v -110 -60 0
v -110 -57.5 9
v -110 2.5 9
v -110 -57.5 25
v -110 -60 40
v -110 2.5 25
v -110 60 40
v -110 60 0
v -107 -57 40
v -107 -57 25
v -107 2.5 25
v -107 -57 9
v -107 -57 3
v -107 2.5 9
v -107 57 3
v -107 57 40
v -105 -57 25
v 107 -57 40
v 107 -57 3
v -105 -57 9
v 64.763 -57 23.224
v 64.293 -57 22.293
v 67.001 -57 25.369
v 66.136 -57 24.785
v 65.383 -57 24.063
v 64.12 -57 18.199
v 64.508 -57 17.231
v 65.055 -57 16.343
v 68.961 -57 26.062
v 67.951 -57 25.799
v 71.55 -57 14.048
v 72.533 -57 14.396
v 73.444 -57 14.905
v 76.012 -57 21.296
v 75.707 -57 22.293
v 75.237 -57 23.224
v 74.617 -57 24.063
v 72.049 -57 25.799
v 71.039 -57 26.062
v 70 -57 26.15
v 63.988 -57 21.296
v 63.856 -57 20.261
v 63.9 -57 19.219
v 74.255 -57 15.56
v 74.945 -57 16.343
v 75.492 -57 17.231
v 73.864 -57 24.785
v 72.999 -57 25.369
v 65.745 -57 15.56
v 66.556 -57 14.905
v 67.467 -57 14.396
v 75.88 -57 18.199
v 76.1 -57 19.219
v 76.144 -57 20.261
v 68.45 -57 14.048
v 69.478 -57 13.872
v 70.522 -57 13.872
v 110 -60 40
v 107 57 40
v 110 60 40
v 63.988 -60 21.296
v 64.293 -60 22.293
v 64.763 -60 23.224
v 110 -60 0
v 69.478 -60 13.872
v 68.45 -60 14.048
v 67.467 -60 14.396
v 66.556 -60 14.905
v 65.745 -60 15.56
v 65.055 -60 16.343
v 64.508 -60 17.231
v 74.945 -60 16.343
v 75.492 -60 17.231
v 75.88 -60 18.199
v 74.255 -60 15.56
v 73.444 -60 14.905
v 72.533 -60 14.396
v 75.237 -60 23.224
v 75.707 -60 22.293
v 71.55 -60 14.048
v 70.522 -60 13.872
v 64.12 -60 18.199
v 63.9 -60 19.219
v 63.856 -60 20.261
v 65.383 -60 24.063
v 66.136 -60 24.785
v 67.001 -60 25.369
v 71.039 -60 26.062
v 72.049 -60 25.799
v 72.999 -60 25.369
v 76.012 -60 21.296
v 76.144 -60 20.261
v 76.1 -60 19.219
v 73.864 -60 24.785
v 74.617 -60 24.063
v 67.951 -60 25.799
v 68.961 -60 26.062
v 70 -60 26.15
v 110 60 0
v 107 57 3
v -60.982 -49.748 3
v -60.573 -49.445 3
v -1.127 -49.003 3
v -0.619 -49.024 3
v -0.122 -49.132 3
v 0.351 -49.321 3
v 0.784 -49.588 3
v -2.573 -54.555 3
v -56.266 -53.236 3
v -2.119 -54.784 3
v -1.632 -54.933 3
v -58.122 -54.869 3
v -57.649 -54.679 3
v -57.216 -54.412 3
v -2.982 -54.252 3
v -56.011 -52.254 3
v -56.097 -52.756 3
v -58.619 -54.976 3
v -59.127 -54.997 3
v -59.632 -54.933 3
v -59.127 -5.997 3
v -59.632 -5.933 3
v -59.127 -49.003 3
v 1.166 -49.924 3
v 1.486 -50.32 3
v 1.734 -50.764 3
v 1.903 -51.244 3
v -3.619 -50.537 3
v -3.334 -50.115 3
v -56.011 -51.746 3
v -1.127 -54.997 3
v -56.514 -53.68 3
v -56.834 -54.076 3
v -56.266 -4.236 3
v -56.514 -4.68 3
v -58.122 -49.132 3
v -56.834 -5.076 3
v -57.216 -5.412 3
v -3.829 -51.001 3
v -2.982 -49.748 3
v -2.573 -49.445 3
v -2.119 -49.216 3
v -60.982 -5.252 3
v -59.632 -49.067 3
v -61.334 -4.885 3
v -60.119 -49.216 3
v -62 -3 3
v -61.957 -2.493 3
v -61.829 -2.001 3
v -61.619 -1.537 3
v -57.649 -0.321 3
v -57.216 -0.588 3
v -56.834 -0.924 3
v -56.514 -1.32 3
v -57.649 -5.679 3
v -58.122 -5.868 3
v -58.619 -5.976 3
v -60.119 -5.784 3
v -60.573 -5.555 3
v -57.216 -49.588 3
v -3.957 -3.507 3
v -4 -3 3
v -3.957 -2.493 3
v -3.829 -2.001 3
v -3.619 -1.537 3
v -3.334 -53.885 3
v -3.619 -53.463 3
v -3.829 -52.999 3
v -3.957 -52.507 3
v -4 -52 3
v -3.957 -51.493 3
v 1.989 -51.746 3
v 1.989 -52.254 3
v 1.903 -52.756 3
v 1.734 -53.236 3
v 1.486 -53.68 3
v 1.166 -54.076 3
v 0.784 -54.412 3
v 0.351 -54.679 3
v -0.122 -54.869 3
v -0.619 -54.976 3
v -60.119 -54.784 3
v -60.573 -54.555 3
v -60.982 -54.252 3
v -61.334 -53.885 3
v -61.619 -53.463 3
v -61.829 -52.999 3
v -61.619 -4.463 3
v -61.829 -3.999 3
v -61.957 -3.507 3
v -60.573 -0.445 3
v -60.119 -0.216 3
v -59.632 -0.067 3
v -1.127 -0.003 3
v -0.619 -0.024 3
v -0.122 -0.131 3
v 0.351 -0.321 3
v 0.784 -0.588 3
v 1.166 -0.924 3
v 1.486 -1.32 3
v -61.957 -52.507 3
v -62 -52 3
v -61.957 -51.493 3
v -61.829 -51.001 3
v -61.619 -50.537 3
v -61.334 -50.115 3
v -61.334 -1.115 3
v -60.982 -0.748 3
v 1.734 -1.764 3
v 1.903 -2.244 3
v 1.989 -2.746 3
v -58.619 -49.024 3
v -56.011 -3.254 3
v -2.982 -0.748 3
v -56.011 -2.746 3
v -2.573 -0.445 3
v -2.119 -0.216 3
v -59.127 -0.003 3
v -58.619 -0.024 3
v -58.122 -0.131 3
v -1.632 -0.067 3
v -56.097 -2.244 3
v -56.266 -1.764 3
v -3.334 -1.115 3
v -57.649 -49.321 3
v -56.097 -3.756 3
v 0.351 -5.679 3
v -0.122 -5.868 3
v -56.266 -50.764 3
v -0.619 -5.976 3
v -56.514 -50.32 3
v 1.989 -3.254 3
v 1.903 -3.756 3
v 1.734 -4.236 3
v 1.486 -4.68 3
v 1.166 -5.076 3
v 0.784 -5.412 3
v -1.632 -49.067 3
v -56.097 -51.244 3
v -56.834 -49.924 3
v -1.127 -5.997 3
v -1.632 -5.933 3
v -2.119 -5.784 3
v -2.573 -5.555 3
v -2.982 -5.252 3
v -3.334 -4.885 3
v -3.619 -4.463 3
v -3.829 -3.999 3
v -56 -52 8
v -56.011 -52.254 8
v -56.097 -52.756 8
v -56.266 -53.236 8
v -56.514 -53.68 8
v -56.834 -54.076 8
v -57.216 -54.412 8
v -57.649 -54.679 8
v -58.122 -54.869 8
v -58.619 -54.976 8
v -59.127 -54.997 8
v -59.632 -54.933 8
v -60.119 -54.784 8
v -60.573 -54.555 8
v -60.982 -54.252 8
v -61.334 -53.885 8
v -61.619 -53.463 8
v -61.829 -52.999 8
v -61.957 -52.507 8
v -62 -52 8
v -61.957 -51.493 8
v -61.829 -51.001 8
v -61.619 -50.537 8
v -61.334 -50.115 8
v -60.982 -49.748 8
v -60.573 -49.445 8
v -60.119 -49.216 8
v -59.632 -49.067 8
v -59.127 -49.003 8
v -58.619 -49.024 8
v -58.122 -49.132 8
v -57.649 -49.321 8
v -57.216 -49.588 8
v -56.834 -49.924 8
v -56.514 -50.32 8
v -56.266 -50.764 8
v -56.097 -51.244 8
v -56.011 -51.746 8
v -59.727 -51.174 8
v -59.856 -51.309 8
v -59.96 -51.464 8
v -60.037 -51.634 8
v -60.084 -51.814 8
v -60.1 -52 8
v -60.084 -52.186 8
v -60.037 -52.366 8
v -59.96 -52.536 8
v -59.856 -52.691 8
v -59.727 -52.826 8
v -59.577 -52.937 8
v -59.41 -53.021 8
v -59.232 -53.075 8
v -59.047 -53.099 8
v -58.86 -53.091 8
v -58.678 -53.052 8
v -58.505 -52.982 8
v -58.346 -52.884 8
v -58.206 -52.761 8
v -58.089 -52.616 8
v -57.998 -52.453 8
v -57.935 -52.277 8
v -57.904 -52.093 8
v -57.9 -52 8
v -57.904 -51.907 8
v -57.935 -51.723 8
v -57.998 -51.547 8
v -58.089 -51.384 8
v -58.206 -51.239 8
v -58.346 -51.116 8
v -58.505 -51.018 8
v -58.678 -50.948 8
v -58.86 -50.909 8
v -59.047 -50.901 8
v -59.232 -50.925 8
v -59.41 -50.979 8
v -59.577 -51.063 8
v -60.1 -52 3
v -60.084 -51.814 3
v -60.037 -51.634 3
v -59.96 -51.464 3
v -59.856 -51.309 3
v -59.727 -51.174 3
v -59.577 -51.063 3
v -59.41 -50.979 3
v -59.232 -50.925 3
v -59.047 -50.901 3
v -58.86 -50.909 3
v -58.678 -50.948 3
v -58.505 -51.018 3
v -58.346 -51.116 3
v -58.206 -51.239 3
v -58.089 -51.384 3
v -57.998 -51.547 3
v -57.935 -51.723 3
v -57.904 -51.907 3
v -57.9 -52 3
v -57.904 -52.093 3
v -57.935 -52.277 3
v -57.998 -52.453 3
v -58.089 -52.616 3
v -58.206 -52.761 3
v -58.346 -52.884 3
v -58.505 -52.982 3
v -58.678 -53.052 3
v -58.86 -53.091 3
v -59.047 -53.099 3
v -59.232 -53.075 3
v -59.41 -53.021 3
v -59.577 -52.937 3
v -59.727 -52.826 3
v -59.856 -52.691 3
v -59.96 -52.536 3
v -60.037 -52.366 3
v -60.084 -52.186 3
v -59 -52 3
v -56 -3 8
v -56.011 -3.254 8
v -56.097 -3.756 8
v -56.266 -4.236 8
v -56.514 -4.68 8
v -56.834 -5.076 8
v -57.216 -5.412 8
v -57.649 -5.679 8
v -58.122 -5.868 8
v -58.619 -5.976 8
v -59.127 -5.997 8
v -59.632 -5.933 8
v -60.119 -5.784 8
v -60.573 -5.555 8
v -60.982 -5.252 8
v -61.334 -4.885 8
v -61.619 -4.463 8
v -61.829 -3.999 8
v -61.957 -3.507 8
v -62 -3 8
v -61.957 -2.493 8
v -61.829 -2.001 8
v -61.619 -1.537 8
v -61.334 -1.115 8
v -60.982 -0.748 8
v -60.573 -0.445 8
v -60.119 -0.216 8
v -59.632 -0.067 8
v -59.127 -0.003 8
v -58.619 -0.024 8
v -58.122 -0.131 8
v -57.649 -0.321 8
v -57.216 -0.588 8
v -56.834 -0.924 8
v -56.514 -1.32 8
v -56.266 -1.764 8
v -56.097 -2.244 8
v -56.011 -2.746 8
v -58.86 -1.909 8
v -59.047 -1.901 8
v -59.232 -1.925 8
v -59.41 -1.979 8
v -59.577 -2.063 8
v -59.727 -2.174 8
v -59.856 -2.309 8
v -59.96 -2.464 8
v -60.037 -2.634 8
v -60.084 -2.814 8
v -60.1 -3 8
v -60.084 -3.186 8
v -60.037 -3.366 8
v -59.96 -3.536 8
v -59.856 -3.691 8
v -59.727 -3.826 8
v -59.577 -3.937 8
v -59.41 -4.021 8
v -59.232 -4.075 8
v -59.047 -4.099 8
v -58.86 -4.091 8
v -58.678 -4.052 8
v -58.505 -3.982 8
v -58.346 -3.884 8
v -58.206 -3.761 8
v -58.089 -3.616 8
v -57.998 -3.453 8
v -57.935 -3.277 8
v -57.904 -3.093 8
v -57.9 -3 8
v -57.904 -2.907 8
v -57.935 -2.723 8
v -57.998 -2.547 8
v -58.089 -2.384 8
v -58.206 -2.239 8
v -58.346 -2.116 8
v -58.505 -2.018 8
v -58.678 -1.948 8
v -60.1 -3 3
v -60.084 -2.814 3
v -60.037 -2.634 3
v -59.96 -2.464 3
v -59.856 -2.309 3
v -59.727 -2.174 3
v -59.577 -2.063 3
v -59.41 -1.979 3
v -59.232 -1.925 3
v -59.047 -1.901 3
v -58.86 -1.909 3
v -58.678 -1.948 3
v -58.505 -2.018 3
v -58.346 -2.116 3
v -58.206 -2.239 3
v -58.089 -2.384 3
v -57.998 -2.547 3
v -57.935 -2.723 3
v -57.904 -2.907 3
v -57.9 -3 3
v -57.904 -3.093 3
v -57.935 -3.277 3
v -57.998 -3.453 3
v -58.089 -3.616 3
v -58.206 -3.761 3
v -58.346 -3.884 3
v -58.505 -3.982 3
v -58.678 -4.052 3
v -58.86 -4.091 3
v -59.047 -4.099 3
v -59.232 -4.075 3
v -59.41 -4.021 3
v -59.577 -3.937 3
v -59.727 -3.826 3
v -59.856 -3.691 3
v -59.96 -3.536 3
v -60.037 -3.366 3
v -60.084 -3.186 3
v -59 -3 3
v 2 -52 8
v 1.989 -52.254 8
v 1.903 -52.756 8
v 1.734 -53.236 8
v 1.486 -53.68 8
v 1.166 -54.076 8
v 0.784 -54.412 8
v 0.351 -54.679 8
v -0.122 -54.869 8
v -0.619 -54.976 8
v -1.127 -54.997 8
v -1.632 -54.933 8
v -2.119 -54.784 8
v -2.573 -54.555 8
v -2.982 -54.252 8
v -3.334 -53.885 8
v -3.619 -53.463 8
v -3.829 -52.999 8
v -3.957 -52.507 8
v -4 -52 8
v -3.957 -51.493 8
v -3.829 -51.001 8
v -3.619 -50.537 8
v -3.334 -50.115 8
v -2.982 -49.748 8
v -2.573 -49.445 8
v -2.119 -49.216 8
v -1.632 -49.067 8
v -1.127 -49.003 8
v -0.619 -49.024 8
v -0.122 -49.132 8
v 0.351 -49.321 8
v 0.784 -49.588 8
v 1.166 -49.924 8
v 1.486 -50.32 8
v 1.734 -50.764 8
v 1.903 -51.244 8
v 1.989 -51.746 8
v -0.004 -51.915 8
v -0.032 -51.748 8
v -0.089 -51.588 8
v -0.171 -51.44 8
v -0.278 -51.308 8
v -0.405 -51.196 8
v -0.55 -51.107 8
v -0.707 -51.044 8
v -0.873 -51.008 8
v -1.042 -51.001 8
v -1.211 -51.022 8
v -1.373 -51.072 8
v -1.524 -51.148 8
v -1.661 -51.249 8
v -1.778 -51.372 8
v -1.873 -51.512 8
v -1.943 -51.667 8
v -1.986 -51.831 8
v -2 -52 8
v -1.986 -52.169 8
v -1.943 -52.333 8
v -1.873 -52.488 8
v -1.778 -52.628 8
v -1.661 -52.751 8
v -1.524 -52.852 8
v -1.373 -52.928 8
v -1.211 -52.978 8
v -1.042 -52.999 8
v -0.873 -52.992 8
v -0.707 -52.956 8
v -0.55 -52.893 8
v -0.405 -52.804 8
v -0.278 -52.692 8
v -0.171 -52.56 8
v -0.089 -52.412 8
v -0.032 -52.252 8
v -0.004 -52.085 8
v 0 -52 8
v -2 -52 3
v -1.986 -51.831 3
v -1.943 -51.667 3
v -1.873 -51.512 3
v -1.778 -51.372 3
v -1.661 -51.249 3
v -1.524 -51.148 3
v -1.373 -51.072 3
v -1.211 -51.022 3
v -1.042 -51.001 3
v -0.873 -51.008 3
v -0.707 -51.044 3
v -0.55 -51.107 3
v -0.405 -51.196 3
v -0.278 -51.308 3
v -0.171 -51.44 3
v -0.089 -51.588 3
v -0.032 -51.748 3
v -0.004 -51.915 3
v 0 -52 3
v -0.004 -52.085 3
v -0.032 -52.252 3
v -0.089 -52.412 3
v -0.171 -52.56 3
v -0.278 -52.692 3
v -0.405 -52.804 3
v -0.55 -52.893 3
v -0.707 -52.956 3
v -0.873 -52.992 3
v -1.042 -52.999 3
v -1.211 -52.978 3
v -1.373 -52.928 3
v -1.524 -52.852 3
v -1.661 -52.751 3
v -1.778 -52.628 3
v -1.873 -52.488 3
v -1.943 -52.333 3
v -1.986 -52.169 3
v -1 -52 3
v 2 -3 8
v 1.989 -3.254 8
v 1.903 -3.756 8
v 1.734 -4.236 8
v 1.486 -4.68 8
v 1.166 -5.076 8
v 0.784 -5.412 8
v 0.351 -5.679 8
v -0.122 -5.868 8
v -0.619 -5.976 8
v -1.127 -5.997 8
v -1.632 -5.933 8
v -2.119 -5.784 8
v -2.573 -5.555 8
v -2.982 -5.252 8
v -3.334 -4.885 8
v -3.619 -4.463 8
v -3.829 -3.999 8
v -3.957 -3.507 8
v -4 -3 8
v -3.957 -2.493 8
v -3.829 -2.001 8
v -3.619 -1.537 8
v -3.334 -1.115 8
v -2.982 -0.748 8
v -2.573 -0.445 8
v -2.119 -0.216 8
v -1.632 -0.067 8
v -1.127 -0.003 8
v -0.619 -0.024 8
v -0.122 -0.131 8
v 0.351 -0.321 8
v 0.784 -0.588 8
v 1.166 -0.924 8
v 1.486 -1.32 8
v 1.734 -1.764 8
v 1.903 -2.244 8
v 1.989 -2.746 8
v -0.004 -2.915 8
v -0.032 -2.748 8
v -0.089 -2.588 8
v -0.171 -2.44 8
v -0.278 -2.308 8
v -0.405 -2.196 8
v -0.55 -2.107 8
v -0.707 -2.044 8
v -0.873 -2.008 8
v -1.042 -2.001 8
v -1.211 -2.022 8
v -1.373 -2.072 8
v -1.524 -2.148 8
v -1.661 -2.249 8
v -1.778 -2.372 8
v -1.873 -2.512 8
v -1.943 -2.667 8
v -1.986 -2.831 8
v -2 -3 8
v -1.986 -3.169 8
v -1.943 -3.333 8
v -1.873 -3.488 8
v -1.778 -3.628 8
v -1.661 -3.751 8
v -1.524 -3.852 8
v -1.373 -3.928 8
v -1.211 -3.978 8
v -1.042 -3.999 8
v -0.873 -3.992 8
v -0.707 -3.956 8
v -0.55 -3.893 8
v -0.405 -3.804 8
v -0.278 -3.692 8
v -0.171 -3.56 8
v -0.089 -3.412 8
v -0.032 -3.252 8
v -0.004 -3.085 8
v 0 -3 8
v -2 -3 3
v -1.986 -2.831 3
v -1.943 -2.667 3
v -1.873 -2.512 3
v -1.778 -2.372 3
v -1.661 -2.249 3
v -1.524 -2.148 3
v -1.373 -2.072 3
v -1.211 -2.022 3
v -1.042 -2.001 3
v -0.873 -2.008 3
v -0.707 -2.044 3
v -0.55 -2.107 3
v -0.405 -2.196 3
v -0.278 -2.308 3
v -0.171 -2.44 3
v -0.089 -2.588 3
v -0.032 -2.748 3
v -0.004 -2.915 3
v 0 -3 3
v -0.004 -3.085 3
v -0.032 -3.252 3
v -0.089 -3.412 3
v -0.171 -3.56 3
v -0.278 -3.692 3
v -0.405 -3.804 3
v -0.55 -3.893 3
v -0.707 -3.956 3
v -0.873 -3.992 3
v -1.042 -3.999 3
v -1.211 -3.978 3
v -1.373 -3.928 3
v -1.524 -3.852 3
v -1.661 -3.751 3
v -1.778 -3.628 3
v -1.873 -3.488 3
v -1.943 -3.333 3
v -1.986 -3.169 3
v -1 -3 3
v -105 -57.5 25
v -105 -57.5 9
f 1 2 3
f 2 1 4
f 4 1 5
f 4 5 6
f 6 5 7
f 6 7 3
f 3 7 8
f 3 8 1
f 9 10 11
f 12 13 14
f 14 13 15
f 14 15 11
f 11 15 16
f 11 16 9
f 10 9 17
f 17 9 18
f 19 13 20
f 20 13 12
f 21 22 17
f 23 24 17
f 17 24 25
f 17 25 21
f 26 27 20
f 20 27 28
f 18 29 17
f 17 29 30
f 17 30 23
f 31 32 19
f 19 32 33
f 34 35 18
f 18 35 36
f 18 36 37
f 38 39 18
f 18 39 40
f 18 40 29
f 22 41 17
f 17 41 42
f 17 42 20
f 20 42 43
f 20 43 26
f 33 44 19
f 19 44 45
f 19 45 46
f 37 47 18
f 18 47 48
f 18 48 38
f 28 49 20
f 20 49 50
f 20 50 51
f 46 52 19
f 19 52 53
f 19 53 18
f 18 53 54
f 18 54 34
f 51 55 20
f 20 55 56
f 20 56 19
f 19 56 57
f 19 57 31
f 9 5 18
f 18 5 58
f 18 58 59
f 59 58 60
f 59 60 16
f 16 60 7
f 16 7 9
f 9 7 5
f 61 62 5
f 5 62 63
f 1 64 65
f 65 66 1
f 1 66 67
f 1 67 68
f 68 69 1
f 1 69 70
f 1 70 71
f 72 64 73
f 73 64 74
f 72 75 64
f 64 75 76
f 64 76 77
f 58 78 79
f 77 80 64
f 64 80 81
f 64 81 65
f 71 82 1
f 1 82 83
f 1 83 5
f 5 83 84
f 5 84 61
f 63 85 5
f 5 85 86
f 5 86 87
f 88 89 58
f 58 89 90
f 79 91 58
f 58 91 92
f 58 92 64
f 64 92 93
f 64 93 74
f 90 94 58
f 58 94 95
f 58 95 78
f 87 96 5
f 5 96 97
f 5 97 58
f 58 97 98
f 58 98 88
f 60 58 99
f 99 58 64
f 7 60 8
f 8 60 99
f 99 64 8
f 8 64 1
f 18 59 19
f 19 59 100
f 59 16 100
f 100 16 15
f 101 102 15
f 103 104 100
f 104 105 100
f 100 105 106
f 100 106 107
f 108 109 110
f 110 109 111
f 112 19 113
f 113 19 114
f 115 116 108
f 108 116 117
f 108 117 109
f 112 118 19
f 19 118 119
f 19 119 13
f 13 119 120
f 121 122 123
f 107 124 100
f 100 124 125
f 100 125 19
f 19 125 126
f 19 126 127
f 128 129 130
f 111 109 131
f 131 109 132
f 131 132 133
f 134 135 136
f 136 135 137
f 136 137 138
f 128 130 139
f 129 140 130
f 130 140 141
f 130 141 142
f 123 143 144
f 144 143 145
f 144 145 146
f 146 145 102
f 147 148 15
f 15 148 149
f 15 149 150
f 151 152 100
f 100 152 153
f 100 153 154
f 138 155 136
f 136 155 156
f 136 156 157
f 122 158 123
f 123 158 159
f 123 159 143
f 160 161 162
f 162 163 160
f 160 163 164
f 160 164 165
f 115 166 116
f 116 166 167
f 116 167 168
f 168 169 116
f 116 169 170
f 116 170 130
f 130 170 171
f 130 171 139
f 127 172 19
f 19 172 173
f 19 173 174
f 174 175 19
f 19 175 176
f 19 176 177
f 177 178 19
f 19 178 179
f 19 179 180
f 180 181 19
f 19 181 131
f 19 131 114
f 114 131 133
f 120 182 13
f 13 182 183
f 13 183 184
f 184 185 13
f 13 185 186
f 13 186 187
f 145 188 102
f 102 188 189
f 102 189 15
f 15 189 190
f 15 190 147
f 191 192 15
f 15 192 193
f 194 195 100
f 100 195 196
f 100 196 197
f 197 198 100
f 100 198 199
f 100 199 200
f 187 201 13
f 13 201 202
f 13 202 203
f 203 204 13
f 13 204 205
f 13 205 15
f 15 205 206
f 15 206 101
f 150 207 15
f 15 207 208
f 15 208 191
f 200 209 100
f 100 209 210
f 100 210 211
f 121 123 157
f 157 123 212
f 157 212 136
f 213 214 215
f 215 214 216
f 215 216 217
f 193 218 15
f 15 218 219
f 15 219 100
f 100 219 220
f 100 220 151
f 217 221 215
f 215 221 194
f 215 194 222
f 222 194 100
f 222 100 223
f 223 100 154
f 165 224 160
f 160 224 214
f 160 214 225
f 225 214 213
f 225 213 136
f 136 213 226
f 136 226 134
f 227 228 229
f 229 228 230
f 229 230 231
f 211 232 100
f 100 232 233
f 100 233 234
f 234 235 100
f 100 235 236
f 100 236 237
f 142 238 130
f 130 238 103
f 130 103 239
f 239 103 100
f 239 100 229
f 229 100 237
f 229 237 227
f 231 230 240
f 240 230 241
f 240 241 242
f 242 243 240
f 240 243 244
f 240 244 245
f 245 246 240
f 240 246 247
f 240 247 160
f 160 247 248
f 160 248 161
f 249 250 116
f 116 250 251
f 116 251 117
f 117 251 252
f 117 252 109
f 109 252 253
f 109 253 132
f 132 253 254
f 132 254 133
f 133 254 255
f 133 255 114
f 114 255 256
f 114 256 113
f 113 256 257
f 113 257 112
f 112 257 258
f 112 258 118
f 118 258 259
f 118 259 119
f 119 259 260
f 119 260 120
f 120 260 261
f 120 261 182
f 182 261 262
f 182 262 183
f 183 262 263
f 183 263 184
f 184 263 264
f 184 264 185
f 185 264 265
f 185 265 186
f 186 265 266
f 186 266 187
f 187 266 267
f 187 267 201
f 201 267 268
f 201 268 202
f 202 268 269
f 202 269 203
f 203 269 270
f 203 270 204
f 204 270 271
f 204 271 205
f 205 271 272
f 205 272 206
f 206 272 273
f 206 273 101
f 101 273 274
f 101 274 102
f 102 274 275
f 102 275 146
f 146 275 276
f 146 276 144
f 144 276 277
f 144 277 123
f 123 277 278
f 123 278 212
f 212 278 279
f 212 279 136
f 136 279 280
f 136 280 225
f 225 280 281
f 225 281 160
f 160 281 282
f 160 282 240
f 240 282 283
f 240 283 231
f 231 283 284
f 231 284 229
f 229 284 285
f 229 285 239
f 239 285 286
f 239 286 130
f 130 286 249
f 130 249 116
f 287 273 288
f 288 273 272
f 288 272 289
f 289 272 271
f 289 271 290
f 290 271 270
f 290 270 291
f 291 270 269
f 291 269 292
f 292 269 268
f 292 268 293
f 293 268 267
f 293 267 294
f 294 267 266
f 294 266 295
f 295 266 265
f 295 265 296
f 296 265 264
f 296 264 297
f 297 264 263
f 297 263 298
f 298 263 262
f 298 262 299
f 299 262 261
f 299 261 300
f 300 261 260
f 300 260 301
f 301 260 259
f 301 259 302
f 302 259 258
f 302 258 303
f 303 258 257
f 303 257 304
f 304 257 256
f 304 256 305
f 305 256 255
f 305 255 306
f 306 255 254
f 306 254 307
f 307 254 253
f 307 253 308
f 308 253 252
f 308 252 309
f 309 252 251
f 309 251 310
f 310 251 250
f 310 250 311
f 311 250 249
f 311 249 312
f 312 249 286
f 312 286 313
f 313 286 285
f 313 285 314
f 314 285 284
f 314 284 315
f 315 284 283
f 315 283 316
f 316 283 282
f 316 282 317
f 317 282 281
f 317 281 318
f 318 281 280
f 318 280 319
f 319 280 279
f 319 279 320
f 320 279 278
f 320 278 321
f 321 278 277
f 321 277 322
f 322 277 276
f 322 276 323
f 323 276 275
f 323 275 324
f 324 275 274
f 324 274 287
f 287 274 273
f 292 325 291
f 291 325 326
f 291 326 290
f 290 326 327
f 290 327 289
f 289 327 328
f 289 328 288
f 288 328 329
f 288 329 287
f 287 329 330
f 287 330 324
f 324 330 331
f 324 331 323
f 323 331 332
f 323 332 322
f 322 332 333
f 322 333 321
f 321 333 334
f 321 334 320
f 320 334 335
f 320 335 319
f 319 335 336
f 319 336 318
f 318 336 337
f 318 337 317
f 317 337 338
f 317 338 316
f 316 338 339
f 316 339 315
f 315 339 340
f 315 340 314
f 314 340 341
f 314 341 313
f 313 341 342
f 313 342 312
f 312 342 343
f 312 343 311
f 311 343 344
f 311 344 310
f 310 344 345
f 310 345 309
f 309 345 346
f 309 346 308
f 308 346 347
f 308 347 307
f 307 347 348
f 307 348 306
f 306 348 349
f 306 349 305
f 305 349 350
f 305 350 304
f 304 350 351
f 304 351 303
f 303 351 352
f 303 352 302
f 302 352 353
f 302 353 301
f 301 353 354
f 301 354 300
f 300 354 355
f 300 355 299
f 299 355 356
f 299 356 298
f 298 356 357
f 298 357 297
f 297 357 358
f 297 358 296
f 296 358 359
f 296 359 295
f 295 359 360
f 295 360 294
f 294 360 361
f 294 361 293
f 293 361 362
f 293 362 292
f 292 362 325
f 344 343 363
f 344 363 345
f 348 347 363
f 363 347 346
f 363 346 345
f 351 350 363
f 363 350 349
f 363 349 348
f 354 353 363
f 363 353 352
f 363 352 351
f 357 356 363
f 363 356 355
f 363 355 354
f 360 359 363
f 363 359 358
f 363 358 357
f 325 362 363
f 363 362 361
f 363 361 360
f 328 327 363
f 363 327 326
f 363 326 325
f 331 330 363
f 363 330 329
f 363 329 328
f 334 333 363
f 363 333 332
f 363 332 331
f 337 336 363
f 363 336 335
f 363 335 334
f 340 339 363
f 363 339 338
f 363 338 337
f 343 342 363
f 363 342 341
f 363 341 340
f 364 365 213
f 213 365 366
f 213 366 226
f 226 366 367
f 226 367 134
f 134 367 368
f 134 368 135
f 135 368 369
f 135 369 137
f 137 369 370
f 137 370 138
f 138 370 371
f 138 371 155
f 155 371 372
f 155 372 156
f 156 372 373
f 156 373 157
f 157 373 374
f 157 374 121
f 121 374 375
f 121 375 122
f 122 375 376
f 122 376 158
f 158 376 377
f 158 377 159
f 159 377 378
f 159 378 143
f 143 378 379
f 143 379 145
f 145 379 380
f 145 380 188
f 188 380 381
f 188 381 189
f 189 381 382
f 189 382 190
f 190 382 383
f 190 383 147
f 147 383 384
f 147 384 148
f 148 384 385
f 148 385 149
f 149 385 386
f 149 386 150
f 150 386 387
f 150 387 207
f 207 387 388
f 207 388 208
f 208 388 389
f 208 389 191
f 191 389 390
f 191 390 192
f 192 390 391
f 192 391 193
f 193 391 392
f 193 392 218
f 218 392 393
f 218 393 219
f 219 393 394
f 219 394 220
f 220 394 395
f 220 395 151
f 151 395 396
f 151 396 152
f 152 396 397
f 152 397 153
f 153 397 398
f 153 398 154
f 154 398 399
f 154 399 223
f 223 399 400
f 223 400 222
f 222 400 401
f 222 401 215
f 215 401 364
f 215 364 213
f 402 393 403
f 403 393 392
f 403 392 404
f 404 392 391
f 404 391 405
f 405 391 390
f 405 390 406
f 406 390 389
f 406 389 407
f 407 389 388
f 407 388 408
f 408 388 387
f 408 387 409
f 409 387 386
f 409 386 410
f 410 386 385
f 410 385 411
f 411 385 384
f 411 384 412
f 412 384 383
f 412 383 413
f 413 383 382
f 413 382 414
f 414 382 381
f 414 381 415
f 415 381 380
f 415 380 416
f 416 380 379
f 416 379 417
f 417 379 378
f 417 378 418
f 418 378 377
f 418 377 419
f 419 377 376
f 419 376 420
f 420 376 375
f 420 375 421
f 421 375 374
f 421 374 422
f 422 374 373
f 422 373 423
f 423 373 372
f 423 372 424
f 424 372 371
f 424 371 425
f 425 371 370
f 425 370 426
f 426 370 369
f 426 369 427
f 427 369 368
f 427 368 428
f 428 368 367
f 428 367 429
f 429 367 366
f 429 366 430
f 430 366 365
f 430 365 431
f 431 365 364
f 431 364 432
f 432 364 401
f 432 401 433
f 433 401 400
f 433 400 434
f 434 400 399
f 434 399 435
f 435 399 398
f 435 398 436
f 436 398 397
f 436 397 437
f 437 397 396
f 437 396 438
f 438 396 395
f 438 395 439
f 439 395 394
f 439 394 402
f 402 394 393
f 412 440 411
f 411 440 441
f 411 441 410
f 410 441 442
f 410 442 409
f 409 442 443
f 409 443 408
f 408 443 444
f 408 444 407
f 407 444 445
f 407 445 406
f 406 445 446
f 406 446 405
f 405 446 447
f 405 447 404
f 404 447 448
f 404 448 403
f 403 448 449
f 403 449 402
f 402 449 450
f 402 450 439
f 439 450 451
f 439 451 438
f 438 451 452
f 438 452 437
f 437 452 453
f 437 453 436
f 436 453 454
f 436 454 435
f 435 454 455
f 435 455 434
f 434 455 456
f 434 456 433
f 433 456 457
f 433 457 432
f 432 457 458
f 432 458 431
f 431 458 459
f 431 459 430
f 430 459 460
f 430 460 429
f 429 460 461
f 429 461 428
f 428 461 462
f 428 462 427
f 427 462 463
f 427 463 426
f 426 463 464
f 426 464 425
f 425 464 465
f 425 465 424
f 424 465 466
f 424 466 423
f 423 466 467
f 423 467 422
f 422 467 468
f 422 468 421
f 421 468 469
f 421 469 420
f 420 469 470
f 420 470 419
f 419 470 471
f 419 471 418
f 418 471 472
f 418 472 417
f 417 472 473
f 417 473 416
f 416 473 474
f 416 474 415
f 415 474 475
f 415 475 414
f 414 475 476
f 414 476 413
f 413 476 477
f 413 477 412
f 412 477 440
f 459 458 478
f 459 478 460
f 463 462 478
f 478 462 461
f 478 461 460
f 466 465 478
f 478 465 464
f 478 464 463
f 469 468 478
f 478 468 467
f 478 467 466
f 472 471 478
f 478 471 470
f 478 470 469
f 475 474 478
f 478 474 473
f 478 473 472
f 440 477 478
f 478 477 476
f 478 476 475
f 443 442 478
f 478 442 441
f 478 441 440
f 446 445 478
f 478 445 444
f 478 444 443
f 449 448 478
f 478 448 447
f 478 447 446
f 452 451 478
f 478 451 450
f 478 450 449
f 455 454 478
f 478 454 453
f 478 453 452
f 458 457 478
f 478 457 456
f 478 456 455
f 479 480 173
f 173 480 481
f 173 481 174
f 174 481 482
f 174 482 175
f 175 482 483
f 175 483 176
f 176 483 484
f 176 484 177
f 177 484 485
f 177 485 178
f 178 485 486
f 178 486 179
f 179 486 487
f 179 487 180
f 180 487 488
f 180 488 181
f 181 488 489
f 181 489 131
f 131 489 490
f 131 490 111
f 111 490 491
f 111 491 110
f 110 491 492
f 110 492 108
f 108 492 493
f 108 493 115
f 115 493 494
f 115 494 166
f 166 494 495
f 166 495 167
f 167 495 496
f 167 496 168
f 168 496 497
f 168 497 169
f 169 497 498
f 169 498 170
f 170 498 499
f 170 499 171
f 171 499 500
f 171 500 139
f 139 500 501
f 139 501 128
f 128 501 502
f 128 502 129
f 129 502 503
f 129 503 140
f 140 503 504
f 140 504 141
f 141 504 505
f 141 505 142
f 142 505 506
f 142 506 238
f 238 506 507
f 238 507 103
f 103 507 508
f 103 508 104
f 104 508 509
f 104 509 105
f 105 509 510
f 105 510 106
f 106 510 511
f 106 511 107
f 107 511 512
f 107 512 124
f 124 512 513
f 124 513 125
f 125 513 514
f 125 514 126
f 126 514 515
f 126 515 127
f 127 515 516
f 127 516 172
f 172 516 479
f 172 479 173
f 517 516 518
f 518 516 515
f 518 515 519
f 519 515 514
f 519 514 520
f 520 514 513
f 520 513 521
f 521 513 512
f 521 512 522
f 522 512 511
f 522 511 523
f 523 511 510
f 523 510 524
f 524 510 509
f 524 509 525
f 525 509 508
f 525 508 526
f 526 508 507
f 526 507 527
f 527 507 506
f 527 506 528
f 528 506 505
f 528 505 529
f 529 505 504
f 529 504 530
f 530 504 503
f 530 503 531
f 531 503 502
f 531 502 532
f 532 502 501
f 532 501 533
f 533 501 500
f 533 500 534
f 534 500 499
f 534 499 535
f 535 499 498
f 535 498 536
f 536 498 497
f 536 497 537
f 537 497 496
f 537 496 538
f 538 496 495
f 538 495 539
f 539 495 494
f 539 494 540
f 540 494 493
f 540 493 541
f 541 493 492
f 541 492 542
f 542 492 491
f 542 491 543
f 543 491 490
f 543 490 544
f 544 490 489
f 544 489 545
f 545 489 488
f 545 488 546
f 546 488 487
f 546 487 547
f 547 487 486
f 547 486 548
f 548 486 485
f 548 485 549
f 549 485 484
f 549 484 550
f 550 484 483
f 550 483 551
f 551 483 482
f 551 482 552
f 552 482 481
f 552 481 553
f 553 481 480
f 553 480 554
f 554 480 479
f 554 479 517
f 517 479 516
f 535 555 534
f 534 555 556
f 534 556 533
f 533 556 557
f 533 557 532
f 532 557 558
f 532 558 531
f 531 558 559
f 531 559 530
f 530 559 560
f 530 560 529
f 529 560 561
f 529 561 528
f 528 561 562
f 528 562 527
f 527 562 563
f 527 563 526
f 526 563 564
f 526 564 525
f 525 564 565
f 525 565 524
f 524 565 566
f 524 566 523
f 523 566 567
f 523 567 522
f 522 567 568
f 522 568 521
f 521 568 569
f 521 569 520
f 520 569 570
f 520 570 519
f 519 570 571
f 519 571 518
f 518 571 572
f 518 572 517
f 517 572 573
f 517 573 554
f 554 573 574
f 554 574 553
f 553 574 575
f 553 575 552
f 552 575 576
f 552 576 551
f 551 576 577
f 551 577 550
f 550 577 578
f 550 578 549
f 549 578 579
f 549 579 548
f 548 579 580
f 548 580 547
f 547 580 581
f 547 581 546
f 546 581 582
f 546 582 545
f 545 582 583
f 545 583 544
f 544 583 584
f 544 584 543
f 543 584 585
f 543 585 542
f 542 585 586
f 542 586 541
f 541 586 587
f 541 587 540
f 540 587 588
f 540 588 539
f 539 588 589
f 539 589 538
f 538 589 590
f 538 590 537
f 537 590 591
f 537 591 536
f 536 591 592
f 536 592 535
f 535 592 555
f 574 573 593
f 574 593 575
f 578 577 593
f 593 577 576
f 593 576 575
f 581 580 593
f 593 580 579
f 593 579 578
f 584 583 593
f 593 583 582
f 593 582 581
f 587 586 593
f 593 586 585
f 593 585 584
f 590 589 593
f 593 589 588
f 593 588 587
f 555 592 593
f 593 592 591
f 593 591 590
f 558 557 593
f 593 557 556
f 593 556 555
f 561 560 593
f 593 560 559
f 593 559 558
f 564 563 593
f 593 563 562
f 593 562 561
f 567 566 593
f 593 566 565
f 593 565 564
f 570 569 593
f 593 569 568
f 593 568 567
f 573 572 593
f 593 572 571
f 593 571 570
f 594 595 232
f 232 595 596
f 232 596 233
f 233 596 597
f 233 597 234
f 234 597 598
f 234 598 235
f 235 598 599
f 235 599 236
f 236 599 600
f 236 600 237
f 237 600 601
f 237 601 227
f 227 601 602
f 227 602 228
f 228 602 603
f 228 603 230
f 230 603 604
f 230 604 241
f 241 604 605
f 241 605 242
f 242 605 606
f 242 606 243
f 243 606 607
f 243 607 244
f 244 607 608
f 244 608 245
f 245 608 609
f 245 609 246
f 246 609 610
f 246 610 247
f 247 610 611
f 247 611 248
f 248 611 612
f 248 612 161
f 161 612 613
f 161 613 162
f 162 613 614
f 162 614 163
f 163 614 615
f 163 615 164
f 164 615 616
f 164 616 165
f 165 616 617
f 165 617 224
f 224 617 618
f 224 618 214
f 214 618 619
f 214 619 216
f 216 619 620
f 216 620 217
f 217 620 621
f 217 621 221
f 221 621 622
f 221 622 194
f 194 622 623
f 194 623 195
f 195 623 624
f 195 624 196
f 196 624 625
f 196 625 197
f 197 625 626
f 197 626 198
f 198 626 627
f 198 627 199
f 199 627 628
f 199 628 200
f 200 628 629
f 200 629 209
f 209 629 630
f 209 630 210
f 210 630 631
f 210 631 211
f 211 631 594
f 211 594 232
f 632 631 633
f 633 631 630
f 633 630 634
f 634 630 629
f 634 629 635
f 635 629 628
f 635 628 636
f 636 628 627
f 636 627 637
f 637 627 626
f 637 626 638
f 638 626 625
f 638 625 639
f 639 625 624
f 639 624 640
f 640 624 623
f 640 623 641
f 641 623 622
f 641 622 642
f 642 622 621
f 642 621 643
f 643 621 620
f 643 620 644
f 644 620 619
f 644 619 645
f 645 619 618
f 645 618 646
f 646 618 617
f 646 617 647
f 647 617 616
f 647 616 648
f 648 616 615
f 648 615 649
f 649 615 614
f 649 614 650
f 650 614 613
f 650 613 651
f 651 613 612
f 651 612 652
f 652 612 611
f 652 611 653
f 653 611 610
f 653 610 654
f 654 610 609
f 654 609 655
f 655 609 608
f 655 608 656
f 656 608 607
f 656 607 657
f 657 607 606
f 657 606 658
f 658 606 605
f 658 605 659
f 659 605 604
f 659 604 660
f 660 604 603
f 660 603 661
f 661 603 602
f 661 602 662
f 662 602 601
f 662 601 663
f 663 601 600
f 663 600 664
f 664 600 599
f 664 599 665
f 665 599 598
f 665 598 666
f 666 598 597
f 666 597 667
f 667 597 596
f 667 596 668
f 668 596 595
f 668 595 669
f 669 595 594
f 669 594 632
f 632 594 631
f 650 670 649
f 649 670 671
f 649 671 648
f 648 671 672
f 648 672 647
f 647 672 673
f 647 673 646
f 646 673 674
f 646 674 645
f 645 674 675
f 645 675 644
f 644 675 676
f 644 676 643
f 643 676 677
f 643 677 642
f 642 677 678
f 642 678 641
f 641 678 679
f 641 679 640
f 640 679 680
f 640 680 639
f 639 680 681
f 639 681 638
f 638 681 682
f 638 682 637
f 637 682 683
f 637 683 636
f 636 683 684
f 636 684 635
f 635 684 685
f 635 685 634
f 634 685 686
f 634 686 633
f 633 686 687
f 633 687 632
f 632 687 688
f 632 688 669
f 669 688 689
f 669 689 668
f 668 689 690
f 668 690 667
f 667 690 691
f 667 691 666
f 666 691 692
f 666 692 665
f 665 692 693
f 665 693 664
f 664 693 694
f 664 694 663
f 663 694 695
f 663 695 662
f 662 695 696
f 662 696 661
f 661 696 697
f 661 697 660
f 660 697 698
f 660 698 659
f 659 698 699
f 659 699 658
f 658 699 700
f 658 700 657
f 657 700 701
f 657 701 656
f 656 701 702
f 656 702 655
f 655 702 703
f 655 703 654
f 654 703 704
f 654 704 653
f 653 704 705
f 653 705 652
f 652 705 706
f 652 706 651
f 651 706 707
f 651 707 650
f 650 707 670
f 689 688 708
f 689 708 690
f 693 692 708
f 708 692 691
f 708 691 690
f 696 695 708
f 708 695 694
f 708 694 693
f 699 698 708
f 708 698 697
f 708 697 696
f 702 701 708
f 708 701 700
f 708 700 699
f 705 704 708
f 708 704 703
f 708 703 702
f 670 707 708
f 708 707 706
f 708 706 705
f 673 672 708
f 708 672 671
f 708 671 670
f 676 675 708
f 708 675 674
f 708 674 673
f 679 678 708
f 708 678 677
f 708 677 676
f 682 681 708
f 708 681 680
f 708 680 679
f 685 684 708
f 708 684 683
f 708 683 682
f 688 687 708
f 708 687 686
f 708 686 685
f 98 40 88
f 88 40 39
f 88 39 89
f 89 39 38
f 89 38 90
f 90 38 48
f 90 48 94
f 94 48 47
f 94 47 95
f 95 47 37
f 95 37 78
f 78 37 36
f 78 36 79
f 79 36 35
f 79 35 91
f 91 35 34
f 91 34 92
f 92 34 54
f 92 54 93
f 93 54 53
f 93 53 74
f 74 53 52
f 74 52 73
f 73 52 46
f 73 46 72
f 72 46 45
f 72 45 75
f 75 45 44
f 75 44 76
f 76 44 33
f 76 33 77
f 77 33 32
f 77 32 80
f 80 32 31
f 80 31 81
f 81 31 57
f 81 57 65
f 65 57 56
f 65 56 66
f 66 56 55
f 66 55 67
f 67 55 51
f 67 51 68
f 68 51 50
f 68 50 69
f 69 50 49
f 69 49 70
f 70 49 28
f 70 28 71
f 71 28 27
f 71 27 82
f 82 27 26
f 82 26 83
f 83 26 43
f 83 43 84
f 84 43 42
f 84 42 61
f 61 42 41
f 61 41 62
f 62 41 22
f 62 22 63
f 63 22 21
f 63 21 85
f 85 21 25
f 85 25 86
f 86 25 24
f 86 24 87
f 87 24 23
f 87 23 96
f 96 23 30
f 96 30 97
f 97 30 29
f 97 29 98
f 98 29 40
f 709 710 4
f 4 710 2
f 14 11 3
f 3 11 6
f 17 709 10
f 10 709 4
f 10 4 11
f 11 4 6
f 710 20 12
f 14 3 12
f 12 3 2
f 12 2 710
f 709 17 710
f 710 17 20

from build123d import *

# Parameters (mm, degrees)
SKETCH_1_W          = 220
SKETCH_1_H          = 120
ENCLOSURE_DEPTH     = 40
CAVITY_START        = 3
SKETCH_2_W          = 214
SKETCH_2_H          = 114
CAVITY_DEPTH        = 37
SKETCH_3_R          = 3
STANDOFF_DEPTH      = 8
STANDOFFHOLE_START  = 3
SKETCH_4_R          = 1.1
STANDOFFHOLE_DEPTH  = 5
SKETCH_5_R          = 3
EXTRUDE_3_DEPTH     = 8
CUT_EXTRUDE_START   = 3
SKETCH_6_R          = 1.1
CUT_EXTRUDE_3_DEPTH = 5
SKETCH_7_R          = 3
EXTRUDE_4_DEPTH     = 8
SKETCH_8_R          = 1
CUT_EXTRUDE_4_DEPTH = 5
SKETCH_9_R          = 3
EXTRUDE_5_DEPTH     = 8
SKETCH_10_R         = 1
CUT_EXTRUDE_5_DEPTH = 5
SKETCH_11_R         = 6.15
BUTTONHOLE_DEPTH    = 61
PORT_START          = 9
SKETCH_12_W         = 7
SKETCH_12_H         = 60
PORT_DEPTH          = 16


with BuildPart() as part:
    # 草图1 → Enclosure (new body)
    with BuildSketch(Plane.XY):
        Rectangle(SKETCH_1_W, SKETCH_1_H)
    extrude(amount=ENCLOSURE_DEPTH)

    # 草图2 → Cavity (cut)
    with BuildSketch(Plane.XY.offset(CAVITY_START)):
        Rectangle(SKETCH_2_W, SKETCH_2_H)
    extrude(amount=CAVITY_DEPTH, mode=Mode.SUBTRACT)

    # 草图3 → Standoff (add)
    with BuildSketch(Plane.XY):
        with Locations(Location((-59, -52, 0), (0, 0, 180))):
            Circle(SKETCH_3_R)
    extrude(amount=STANDOFF_DEPTH)

    # 草图4 → StandoffHole (cut)
    with BuildSketch(Plane.XY.offset(STANDOFFHOLE_START)):
        with Locations((-59, -52)):
            Circle(SKETCH_4_R)
    extrude(amount=STANDOFFHOLE_DEPTH, mode=Mode.SUBTRACT)

    # 草图5 → 凸台-拉伸3 (add)
    with BuildSketch(Plane.XY):
        with Locations(Location((-59, -3, 0), (0, 0, 180))):
            Circle(SKETCH_5_R)
    extrude(amount=EXTRUDE_3_DEPTH)

    # 草图6 → 切除-拉伸3 (cut)
    with BuildSketch(Plane.XY.offset(CUT_EXTRUDE_START)):
        with Locations((-59, -3)):
            Circle(SKETCH_6_R)
    extrude(amount=CUT_EXTRUDE_3_DEPTH, mode=Mode.SUBTRACT)

    # 草图7 → 凸台-拉伸4 (add)
    with BuildSketch(Plane.XY):
        with Locations(Location((-1, -52, 0), (0, 0, 180))):
            Circle(SKETCH_7_R)
    extrude(amount=EXTRUDE_4_DEPTH)

    # 草图8 → 切除-拉伸4 (cut)
    with BuildSketch(Plane.XY.offset(CUT_EXTRUDE_START)):
        with Locations((-1, -52)):
            Circle(SKETCH_8_R)
    extrude(amount=CUT_EXTRUDE_4_DEPTH, mode=Mode.SUBTRACT)

    # 草图9 → 凸台-拉伸5 (add)
    with BuildSketch(Plane.XY):
        with Locations(Location((-1, -3, 0), (0, 0, 180))):
            Circle(SKETCH_9_R)
    extrude(amount=EXTRUDE_5_DEPTH)

    # 草图10 → 切除-拉伸5 (cut)
    with BuildSketch(Plane.XY.offset(CUT_EXTRUDE_START)):
        with Locations((-1, -3)):
            Circle(SKETCH_10_R)
    extrude(amount=CUT_EXTRUDE_5_DEPTH, mode=Mode.SUBTRACT)

    # 草图11 → ButtonHole (cut)
    with BuildSketch(Plane(origin=(0, 0, 0), x_dir=(1, 0, 0), z_dir=(0, 1, 0))):
        with Locations(Location((70, -20, 0), (0, 0, 270))):
            Circle(SKETCH_11_R)
    extrude(amount=-BUTTONHOLE_DEPTH, mode=Mode.SUBTRACT)

    # 草图12 → Port (cut)
    with BuildSketch(Plane.XY.offset(PORT_START)):
        with Locations((-108.5, -27.5)):
            Rectangle(SKETCH_12_W, SKETCH_12_H)
    extrude(amount=PORT_DEPTH, mode=Mode.SUBTRACT)


solid = part.part
